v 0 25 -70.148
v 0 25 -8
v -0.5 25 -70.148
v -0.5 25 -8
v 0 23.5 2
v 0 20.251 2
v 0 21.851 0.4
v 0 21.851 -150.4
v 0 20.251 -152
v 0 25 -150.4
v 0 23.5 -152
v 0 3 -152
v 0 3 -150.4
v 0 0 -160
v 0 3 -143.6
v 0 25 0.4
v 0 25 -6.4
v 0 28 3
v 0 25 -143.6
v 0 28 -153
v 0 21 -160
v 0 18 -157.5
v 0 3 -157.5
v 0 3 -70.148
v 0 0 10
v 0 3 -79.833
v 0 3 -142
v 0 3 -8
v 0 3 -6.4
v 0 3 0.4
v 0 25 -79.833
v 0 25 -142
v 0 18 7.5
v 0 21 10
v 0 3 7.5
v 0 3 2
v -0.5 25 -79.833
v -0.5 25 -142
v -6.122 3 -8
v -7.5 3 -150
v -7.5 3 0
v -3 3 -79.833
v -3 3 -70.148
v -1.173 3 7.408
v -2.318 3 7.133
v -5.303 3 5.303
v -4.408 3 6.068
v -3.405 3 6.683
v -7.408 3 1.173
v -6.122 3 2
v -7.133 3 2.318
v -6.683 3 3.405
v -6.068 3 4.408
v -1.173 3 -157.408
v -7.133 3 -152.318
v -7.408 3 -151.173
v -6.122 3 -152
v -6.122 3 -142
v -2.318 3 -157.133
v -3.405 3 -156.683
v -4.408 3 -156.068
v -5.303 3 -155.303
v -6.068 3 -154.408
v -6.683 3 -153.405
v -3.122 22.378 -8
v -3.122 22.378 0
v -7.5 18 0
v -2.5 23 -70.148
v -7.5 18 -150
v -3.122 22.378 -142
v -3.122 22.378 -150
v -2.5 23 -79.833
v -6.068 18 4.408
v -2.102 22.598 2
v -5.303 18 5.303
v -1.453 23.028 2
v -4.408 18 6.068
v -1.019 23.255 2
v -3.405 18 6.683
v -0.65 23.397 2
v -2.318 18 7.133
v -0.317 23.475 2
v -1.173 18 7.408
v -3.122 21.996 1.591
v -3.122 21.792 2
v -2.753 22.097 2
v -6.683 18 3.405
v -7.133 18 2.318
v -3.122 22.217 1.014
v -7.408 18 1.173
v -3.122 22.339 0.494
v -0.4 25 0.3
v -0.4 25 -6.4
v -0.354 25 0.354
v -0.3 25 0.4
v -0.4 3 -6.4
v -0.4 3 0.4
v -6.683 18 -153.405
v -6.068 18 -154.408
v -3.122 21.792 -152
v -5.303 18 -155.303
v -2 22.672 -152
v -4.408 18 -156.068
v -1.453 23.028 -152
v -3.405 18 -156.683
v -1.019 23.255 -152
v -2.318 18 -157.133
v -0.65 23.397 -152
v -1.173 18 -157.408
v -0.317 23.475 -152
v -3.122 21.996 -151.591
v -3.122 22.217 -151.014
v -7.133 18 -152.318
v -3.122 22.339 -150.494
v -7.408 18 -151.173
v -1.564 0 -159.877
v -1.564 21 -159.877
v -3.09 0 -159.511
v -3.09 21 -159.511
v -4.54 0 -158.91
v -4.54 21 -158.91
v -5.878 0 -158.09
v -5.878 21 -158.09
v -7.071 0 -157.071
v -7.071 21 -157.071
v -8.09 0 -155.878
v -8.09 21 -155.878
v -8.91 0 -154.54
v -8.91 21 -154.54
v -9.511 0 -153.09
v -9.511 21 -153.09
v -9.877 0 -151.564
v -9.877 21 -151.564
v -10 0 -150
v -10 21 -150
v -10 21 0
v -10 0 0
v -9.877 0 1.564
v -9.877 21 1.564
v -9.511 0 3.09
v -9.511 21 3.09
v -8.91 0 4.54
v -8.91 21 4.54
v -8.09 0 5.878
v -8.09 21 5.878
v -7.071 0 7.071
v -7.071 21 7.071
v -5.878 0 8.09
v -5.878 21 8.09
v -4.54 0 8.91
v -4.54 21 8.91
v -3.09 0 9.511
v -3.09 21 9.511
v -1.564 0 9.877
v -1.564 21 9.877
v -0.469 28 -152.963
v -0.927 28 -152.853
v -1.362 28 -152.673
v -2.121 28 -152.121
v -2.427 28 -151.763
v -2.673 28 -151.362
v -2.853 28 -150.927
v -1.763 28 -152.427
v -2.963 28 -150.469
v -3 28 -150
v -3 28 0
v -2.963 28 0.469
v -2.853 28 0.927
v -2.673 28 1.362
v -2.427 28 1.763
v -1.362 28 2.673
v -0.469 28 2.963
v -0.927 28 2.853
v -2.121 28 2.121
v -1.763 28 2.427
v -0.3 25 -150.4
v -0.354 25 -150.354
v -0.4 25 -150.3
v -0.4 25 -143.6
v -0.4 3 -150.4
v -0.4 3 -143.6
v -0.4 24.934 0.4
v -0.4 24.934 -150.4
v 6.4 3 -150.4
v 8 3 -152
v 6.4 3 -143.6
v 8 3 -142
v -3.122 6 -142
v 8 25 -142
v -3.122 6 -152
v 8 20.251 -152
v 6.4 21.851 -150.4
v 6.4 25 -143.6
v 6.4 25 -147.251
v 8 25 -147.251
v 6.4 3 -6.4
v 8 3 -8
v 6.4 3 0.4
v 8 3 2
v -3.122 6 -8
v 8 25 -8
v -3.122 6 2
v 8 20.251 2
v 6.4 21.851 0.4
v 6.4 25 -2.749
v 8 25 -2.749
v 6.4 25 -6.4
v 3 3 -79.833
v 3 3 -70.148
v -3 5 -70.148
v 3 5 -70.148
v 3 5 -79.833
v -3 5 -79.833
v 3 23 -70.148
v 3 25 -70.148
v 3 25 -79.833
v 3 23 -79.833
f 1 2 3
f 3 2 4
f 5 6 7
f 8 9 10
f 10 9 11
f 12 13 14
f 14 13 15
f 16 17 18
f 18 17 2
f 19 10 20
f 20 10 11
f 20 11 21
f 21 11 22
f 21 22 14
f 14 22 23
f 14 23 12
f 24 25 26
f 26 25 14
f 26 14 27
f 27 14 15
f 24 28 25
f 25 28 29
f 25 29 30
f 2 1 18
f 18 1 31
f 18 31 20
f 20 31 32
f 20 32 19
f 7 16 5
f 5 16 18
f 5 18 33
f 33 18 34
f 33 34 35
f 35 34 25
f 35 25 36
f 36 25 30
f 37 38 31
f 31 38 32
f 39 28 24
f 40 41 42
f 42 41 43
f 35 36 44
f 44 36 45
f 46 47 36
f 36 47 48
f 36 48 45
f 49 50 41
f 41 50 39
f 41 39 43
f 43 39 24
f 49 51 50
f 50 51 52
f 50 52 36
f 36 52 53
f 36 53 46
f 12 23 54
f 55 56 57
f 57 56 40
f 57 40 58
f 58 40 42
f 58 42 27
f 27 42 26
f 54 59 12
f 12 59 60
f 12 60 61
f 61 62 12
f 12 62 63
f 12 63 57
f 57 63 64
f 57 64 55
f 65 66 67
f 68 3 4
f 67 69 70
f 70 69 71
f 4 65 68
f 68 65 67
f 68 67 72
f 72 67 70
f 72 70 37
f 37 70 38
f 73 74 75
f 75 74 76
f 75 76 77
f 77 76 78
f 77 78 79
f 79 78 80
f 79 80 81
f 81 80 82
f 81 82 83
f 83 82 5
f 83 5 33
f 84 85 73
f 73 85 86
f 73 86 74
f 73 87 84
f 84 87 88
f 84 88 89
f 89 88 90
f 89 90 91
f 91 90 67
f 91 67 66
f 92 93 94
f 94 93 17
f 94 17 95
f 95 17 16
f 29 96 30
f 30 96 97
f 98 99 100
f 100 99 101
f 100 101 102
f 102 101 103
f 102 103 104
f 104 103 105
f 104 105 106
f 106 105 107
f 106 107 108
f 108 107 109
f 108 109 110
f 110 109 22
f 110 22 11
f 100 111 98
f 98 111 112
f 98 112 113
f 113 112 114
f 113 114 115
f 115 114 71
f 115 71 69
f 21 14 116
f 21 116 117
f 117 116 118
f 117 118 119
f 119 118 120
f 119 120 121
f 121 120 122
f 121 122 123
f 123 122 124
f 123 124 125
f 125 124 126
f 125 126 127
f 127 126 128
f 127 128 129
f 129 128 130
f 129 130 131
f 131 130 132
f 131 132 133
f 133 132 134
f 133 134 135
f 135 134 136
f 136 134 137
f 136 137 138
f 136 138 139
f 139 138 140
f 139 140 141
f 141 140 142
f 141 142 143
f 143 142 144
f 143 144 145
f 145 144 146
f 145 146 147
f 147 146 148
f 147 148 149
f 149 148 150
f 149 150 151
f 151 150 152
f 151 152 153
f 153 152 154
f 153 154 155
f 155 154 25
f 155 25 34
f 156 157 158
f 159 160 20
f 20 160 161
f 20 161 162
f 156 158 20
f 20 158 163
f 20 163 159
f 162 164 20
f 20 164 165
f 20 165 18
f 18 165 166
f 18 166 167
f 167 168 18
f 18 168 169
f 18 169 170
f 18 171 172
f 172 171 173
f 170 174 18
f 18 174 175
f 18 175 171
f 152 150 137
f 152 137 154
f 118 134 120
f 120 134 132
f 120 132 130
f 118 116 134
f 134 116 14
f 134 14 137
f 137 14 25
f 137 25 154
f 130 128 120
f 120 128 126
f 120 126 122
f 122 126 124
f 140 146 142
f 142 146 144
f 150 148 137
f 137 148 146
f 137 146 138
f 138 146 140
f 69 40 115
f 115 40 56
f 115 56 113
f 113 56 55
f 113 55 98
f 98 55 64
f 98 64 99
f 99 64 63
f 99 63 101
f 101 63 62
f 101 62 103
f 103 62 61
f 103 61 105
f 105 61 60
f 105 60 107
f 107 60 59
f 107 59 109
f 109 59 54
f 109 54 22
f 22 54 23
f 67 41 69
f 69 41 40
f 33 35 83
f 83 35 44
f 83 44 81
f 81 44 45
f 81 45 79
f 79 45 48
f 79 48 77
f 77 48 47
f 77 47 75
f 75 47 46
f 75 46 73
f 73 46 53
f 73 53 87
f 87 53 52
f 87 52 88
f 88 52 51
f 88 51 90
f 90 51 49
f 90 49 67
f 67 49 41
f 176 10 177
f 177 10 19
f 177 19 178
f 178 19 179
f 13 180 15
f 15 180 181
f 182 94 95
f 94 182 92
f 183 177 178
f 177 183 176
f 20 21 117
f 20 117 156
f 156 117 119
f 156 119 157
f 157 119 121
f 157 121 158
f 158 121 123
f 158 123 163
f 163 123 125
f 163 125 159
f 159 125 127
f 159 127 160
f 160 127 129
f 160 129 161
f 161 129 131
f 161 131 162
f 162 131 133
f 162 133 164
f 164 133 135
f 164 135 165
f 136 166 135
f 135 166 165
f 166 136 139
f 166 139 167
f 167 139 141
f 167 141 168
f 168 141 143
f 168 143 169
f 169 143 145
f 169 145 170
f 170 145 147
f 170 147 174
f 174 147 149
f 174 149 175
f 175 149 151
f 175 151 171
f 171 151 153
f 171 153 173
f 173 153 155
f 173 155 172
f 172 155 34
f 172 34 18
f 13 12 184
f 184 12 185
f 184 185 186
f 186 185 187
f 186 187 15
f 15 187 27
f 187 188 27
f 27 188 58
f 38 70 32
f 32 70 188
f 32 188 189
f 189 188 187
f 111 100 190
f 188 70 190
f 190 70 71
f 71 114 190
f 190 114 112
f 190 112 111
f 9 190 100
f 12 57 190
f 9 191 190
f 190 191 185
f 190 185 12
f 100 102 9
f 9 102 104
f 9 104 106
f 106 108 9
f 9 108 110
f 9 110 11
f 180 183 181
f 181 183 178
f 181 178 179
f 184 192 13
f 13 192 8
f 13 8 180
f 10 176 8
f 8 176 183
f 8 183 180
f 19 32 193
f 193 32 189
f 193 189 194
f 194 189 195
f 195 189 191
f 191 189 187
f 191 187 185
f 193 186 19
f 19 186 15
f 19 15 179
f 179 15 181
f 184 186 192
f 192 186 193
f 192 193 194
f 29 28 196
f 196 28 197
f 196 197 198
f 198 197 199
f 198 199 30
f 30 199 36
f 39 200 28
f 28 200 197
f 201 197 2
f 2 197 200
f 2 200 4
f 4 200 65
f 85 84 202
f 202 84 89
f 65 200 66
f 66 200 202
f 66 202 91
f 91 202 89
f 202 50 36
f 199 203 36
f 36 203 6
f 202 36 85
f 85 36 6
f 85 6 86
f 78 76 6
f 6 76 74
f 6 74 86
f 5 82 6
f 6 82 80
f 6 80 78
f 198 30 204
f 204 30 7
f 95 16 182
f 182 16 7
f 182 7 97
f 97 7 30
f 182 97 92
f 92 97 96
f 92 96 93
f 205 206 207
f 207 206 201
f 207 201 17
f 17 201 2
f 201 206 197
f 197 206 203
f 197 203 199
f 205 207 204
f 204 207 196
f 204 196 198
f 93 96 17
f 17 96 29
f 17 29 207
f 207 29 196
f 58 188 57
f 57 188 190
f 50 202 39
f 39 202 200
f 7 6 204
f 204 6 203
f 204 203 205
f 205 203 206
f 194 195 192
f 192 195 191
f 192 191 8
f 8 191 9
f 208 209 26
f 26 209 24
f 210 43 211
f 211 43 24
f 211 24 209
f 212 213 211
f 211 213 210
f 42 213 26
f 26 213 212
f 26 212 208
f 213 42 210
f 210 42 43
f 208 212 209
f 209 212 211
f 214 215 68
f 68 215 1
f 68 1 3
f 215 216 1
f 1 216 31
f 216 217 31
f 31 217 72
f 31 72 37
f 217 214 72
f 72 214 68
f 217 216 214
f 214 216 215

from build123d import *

# Parameters (mm, degrees)
BOSS_EXTRUDE1_DEPTH      = 28
SHELL1_T                 = -2.5
SHELL1_THICKNESS_2_DEPTH = 0.5
SHELL1_THICKNESS_3_DEPTH = 0.5
CHAMFER1_SIZE            = 7
BOSS_EXTRUDE2_REACH      = 164.25
SKETCH6_W                = 11.122019094
SKETCH6_H                = 10
SKETCH6_W_2              = 6.8
SKETCH6_H_2              = 6.8
CHAMFER2_SIZE            = 3
CUT_EXTRUDE2_START       = -8
CUT_EXTRUDE2_DEPTH       = 8
BOSS_EXTRUDE3_DEPTH      = 3
BOSS_EXTRUDE3_DEPTH_BACK = 3
SKETCH8_W                = 9.684827103
SKETCH8_H                = 2


with BuildPart() as part:
    # Sketch3 → Boss-Extrude1 (new body)
    with BuildSketch(Plane(origin=(0, 0, 0), x_dir=(1, 0, 0), z_dir=(0, 1, 0))):
        with BuildLine():
            Line((0, 160), (0, -10))
            ThreePointArc((0, -10), (-7.071067812, -7.071067812), (-10, 0))
            Line((-10, 0), (-10, 150))
            ThreePointArc((-10, 150), (-7.071067812, 157.071067812), (0, 160))
        make_face()
    extrude(amount=BOSS_EXTRUDE1_DEPTH)

    # Shell1
    shell1_openings = [part.faces().sort_by_distance(p)[0] for p in [
        (0, 14, -75),
    ]]
    offset(amount=SHELL1_T, openings=shell1_openings, kind=Kind.INTERSECTION)

    # Shell1 thickness 2 face (on inner face of the shell) → Shell1 thickness 2 (add)
    with BuildSketch(Plane(origin=(-3.708717972, 2.5, -75), x_dir=(0, 0, -1), z_dir=(0, -1, 0))):
        with BuildLine():
            Line((-82.5, 3.708717972), (82.5, 3.708717972))
            ThreePointArc((82.5, 3.708717972), (80.303300859, -1.594582887), (75, -3.791282028))
            Line((75, -3.791282028), (-75, -3.791282028))
            ThreePointArc((-75, -3.791282028), (-80.303300859, -1.594582887), (-82.5, 3.708717972))
        make_face()
    extrude(amount=-SHELL1_THICKNESS_2_DEPTH)

    # Shell1 thickness 3 face (on inner face of the shell) → Shell1 thickness 3 (add)
    with BuildSketch(Plane(origin=(-3.708717972, 25.5, -75), x_dir=(0, 0, 1), z_dir=(0, 1, 0))):
        with BuildLine():
            Line((-82.5, 3.708717972), (82.5, 3.708717972))
            ThreePointArc((82.5, 3.708717972), (80.303300859, -1.594582887), (75, -3.791282028))
            Line((75, -3.791282028), (-75, -3.791282028))
            ThreePointArc((-75, -3.791282028), (-80.303300859, -1.594582887), (-82.5, 3.708717972))
        make_face()
    extrude(amount=-SHELL1_THICKNESS_3_DEPTH)

    # Chamfer1
    chamfer1_edges = [part.edges().sort_by_distance(p)[0] for p in [
        (-7.071067812, 28, 7.071067812),
        (-5.303300859, 25, -155.303300859),
        (-7.5, 25, -75),
        (-5.303300859, 25, 5.303300859),
        (-7.071067812, 28, -157.071067812),
        (-10, 28, -75),
    ]]
    chamfer(chamfer1_edges, length=CHAMFER1_SIZE)

    # Boss-Extrude2: up to this face of the body (flat: up to its plane)
    boss_extrude2_end = Plane(part.part.faces().sort_by_distance((-0.249803145, 25, -75))[0])
    # Sketch6 → Boss-Extrude2 (add, up to the picked face)
    with BuildSketch(Plane(origin=(0, 3, 0), x_dir=(1, 0, 0), z_dir=(0, 1, 0)), mode=Mode.PRIVATE) as boss_extrude2_sk1:
        with Locations((2.438990453, 147)):
            Rectangle(SKETCH6_W, SKETCH6_H)
        with Locations((3, 147)):
            Rectangle(SKETCH6_W_2, SKETCH6_H_2, mode=Mode.SUBTRACT)
    boss_extrude2_tool1 = split(extrude(boss_extrude2_sk1.sketch, amount=BOSS_EXTRUDE2_REACH, mode=Mode.PRIVATE), bisect_by=boss_extrude2_end, keep=Keep.BOTH, mode=Mode.PRIVATE)
    # Sketch6 → Boss-Extrude2 (add, up to the picked face)
    with BuildSketch(Plane(origin=(0, 3, 0), x_dir=(1, 0, 0), z_dir=(0, 1, 0)), mode=Mode.PRIVATE) as boss_extrude2_sk2:
        with Locations((2.438990453, 3)):
            Rectangle(SKETCH6_W, SKETCH6_H)
        with Locations((3, 3)):
            Rectangle(SKETCH6_W_2, SKETCH6_H_2, mode=Mode.SUBTRACT)
    boss_extrude2_tool2 = split(extrude(boss_extrude2_sk2.sketch, amount=BOSS_EXTRUDE2_REACH, mode=Mode.PRIVATE), bisect_by=boss_extrude2_end, keep=Keep.BOTH, mode=Mode.PRIVATE)
    add(boss_extrude2_tool1.solids().sort_by(Axis((2.43899, 3, -151.850434), (0, 1, 0)))[0])
    add(boss_extrude2_tool2.solids().sort_by(Axis((-2.972453, 3, -3), (0, 1, 0)))[0])

    # Chamfer2
    chamfer2_edges = [part.edges().sort_by_distance(p)[0] for p in [
        (-3.122019094, 3, -3),
        (-3.122019094, 3, -147),
    ]]
    chamfer(chamfer2_edges, length=CHAMFER2_SIZE)

    # Sketch7 → Cut-Extrude2 (cut)
    with BuildSketch(Plane(origin=(8, 0, 0), x_dir=(0, 0, -1), z_dir=(1, 0, 0)).offset(CUT_EXTRUDE2_START)):
        Polygon((-3.29028529, 29.773150155), (-3.29028529, 18.960661134), (4.456137204, 26.707083629), align=None)
        Polygon((145.543862796, 26.707083629), (153.29028529, 29.773150155), (153.29028529, 18.960661134), align=None)
    extrude(amount=CUT_EXTRUDE2_DEPTH, mode=Mode.SUBTRACT)

    # Sketch8 → Boss-Extrude3 (add, two sides: drawn at the far end of the back side and taken through both)
    with BuildSketch(Plane(origin=(0, 0, 0), x_dir=(0, 0, -1), z_dir=(1, 0, 0)).offset(-BOSS_EXTRUDE3_DEPTH_BACK)):
        with Locations((74.990759453, 4)):
            Rectangle(SKETCH8_W, SKETCH8_H)
        with Locations((74.990759453, 24)):
            Rectangle(SKETCH8_W, SKETCH8_H)
    extrude(amount=BOSS_EXTRUDE3_DEPTH + BOSS_EXTRUDE3_DEPTH_BACK)


solid = part.part
